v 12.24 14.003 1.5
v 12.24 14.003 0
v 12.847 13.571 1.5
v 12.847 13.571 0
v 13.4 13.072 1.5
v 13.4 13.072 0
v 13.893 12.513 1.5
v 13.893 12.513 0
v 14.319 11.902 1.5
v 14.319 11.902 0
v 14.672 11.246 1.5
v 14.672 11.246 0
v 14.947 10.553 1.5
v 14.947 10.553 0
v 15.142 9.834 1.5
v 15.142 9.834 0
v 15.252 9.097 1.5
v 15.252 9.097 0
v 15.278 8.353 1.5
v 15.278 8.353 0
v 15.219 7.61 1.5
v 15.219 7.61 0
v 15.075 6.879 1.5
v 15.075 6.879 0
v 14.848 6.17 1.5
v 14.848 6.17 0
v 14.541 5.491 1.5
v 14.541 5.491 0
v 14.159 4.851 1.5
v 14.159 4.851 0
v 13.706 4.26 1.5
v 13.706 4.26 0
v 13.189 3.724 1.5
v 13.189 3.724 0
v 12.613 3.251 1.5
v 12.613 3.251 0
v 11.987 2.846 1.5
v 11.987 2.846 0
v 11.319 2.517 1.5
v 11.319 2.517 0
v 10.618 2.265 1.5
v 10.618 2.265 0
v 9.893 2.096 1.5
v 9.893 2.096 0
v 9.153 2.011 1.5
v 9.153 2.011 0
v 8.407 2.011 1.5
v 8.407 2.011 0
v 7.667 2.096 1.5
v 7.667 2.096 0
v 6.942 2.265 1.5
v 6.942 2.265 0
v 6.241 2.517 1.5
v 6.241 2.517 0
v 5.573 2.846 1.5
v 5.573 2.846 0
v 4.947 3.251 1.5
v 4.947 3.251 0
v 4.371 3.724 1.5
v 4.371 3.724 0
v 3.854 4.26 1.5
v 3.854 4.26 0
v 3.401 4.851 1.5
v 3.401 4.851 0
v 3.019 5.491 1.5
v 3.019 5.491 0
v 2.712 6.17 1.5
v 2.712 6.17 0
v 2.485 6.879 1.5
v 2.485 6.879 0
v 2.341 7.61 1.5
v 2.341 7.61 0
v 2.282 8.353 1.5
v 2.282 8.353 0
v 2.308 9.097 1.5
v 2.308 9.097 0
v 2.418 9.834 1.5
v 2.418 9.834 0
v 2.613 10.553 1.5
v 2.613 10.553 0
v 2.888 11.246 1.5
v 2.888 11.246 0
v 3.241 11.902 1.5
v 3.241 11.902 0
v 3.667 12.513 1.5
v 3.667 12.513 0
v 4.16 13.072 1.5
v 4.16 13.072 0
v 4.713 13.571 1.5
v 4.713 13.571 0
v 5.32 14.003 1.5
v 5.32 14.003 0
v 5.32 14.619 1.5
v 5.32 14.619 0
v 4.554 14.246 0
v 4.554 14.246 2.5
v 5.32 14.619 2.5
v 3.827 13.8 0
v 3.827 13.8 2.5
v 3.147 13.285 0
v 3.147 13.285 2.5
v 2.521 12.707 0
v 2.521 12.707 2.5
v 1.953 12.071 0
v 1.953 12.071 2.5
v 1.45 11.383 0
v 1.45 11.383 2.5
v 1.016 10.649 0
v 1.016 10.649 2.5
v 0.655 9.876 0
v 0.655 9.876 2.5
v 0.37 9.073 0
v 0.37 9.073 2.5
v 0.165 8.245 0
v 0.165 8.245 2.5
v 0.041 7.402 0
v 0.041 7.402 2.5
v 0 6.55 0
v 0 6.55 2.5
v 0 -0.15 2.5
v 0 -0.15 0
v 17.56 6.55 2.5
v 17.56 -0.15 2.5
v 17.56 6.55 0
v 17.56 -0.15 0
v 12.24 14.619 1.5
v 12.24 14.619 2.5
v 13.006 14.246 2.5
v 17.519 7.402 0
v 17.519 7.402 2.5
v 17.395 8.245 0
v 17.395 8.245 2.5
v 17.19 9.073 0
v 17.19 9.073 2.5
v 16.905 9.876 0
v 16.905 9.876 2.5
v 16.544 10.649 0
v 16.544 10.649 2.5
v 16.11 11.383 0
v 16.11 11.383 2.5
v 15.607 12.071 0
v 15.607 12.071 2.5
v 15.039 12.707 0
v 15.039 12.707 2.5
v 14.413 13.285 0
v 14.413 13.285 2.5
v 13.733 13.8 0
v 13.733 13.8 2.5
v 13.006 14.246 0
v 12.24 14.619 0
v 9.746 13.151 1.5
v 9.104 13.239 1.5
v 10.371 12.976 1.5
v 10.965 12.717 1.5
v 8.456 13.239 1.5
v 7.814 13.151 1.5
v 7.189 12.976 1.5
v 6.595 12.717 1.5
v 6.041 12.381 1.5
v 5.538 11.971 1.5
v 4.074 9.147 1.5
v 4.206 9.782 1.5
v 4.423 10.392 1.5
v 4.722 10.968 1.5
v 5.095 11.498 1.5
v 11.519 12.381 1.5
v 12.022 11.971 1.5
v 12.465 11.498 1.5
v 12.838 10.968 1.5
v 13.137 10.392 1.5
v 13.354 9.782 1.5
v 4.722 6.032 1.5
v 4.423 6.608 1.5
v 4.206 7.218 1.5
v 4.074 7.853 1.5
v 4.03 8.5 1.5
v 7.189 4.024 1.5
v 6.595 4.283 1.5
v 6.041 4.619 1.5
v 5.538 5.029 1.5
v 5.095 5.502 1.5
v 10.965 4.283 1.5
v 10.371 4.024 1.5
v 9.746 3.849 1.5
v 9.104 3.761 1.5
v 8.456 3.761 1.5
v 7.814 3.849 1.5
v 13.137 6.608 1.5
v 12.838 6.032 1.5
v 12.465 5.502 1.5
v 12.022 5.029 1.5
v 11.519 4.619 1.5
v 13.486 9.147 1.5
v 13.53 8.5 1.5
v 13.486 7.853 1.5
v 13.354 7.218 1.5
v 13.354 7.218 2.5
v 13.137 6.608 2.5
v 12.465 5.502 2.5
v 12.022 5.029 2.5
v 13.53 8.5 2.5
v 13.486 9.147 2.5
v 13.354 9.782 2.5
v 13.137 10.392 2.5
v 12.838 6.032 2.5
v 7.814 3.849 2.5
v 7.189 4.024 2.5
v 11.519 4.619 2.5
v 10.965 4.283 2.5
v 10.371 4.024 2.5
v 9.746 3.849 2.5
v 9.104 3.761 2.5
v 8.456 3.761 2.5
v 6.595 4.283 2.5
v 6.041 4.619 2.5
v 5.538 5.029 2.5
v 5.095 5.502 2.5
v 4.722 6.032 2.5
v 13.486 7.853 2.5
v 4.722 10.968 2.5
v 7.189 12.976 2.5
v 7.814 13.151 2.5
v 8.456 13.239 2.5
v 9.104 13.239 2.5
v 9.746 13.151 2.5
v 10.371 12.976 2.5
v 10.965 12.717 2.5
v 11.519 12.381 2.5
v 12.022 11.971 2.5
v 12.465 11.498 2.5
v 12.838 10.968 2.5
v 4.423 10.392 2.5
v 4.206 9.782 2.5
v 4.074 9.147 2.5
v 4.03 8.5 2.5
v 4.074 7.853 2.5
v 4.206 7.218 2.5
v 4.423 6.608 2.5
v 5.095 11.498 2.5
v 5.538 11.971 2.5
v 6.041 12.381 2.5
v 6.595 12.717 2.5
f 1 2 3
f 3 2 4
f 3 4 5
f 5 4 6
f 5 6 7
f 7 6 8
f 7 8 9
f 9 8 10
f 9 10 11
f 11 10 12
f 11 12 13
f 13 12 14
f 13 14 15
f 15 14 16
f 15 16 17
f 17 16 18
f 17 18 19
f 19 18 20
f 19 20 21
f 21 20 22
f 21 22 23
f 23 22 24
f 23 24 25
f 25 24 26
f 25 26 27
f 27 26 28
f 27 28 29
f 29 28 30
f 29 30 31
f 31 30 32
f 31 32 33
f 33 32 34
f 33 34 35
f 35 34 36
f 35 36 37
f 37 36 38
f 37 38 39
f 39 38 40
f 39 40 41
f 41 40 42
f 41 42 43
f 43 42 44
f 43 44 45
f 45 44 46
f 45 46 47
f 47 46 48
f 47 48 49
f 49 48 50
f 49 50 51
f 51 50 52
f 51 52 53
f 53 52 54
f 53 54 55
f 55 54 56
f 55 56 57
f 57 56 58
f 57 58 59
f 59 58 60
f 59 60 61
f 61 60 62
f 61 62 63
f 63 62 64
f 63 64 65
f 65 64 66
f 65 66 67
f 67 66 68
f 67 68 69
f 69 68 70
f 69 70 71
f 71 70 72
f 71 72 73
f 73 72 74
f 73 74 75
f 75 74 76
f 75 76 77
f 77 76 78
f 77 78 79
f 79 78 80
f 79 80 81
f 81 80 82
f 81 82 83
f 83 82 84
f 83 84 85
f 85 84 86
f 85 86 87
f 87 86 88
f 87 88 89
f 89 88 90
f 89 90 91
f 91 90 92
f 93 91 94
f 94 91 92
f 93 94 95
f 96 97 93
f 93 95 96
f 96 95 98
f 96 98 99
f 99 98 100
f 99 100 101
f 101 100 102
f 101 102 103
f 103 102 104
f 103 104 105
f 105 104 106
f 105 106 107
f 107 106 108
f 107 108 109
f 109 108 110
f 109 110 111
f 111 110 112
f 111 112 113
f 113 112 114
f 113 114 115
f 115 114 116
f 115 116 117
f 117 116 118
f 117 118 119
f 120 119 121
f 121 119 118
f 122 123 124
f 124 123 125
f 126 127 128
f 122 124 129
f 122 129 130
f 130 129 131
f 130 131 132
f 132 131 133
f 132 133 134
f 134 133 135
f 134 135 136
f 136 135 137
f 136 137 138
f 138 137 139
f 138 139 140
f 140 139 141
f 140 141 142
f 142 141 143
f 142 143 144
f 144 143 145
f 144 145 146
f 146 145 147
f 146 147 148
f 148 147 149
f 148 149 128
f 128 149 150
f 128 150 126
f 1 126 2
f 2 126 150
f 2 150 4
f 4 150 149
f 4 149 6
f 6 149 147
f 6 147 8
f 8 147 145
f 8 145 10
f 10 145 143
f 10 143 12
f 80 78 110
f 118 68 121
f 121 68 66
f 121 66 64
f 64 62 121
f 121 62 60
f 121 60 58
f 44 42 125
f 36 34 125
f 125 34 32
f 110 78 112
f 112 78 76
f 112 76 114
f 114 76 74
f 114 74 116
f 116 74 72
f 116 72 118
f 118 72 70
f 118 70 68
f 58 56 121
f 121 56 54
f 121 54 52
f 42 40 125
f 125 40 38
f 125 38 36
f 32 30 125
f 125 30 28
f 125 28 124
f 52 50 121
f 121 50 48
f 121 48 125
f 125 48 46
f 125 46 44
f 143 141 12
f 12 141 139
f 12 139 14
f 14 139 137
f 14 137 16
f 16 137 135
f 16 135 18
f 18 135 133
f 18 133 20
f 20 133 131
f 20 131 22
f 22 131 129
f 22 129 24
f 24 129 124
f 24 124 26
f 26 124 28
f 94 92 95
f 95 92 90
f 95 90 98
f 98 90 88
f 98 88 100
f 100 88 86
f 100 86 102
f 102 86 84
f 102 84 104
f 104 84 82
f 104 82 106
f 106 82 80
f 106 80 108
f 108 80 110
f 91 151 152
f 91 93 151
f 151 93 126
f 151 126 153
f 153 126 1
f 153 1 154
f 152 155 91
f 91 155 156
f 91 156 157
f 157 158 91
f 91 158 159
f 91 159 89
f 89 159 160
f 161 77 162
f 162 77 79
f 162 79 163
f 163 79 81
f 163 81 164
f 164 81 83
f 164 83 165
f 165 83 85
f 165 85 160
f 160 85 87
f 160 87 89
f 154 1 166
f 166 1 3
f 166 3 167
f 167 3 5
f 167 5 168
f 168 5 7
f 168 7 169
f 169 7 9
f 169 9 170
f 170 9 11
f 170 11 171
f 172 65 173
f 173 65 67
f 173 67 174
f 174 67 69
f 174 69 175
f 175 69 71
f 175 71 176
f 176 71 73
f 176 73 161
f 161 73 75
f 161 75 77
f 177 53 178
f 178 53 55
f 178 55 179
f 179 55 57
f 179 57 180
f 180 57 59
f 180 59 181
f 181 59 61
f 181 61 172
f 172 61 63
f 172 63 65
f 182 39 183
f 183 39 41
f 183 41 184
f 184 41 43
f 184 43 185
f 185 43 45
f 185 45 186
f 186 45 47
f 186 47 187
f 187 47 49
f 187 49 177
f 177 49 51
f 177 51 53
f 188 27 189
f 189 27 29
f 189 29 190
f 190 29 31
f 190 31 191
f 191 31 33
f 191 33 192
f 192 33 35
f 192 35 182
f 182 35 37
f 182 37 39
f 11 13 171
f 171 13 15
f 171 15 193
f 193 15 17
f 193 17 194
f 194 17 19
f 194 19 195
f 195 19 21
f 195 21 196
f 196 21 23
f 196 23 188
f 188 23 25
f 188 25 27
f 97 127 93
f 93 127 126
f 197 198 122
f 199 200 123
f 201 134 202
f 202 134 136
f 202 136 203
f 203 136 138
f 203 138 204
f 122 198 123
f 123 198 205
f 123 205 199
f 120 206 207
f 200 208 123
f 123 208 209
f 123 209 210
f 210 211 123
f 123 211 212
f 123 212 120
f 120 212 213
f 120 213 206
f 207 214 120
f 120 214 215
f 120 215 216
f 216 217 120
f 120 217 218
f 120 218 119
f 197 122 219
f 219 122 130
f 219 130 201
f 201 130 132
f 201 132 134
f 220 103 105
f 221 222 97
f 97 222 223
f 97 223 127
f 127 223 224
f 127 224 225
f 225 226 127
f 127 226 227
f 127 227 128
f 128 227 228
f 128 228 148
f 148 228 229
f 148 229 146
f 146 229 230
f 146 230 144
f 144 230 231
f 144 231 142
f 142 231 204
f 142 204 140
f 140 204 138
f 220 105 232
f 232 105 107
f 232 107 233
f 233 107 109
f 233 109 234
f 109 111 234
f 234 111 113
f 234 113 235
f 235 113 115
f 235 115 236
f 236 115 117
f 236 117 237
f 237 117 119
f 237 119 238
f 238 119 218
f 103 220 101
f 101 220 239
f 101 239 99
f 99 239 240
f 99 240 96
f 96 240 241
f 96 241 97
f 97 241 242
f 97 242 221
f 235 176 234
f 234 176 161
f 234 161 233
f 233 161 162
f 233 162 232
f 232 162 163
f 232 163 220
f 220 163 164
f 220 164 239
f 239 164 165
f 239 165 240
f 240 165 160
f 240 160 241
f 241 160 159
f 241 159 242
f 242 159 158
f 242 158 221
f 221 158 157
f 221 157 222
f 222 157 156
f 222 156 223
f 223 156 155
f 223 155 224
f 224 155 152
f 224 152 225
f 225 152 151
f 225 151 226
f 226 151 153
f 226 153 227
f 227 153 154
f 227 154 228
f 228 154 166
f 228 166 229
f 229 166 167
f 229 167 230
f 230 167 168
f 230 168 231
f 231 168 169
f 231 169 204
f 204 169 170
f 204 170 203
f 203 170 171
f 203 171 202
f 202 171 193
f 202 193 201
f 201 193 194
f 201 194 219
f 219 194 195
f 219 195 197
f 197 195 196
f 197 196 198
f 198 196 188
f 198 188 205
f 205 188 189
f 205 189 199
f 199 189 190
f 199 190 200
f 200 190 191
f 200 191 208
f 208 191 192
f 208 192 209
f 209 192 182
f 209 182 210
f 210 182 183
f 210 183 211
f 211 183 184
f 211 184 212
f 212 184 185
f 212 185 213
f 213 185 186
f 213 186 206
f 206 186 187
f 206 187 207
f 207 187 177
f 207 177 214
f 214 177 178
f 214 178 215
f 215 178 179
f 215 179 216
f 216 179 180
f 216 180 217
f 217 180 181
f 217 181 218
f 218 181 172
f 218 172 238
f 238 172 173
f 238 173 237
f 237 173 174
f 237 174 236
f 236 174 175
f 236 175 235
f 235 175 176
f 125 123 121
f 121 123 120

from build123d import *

# Parameters (mm, degrees)
BOSS_EXTRUDE1_DEPTH = 1.5
BOSS_EXTRUDE2_DEPTH = 1
SKETCH4_R           = 4.75
CUT_EXTRUDE1_DEPTH  = 23.898325822
SKETCH5_W           = 17.56
SKETCH5_H           = 2.5
BOSS_EXTRUDE3_DEPTH = 0.15


with BuildPart() as part:
    # Sketch1 → Boss-Extrude1 (new body)
    with BuildSketch(Plane.XY):
        with BuildLine():
            ThreePointArc((14.980604809, 6.55), (8.78, 2), (2.579395191, 6.55))
            Line((2.579395191, 6.55), (0, 6.55))
            Line((0, 6.55), (0, 0))
            Line((0, 0), (17.56, 0))
            Line((17.56, 0), (17.56, 6.55))
            Line((17.56, 6.55), (14.980604809, 6.55))
        make_face()
        with BuildLine():
            ThreePointArc((2.579395191, 6.55), (2.679421093, 10.743420825), (5.32, 14.002581212))
            Line((5.32, 14.002581212), (5.32, 14.619498126))
            ThreePointArc((5.32, 14.619498126), (1.449679407, 11.382680416), (0, 6.55))
            Line((0, 6.55), (2.579395191, 6.55))
        make_face()
        with BuildLine():
            ThreePointArc((12.24, 14.002581212), (14.880578907, 10.743420825), (14.980604809, 6.55))
            Line((14.980604809, 6.55), (17.56, 6.55))
            ThreePointArc((17.56, 6.55), (16.110320593, 11.382680416), (12.24, 14.619498126))
            Line((12.24, 14.619498126), (12.24, 14.002581212))
        make_face()
    extrude(amount=BOSS_EXTRUDE1_DEPTH)

    # Sketch3 → Boss-Extrude2 (add)
    with BuildSketch(Plane.XY.offset(1.5)):
        with BuildLine():
            Line((12.24, 14.619498126), (12.24, 14.002581212))
            ThreePointArc((12.24, 14.002581212), (8.78, 2), (5.32, 14.002581212))
            Line((5.32, 14.002581212), (5.32, 14.619498126))
            ThreePointArc((5.32, 14.619498126), (1.449679407, 11.382680416), (0, 6.55))
            Line((0, 6.55), (0, 0))
            Line((0, 0), (17.56, 0))
            Line((17.56, 0), (17.56, 6.55))
            ThreePointArc((17.56, 6.55), (16.110320593, 11.382680416), (12.24, 14.619498126))
        make_face()
        with BuildLine():
            Line((5.32, 14.619498126), (12.24, 14.619498126))
            Line((12.24, 14.619498126), (12.24, 14.002581212))
            ThreePointArc((12.24, 14.002581212), (8.78, 2), (5.32, 14.002581212))
            Line((5.32, 14.002581212), (5.32, 14.619498126))
        make_face()
    extrude(amount=BOSS_EXTRUDE2_DEPTH)

    # Sketch4 → Cut-Extrude1 (cut, through all)
    with BuildSketch(Plane(origin=(0, 0, 1.5), x_dir=(-1, 0, 0), z_dir=(0, 0, -1))):
        with Locations((-8.78, 8.5)):
            Circle(SKETCH4_R)
    extrude(amount=-CUT_EXTRUDE1_DEPTH, mode=Mode.SUBTRACT)

    # Sketch5 → Boss-Extrude3 (add)
    with BuildSketch(Plane.XZ):
        with Locations((8.78, 1.25)):
            Rectangle(SKETCH5_W, SKETCH5_H)
    extrude(amount=BOSS_EXTRUDE3_DEPTH)


solid = part.part
